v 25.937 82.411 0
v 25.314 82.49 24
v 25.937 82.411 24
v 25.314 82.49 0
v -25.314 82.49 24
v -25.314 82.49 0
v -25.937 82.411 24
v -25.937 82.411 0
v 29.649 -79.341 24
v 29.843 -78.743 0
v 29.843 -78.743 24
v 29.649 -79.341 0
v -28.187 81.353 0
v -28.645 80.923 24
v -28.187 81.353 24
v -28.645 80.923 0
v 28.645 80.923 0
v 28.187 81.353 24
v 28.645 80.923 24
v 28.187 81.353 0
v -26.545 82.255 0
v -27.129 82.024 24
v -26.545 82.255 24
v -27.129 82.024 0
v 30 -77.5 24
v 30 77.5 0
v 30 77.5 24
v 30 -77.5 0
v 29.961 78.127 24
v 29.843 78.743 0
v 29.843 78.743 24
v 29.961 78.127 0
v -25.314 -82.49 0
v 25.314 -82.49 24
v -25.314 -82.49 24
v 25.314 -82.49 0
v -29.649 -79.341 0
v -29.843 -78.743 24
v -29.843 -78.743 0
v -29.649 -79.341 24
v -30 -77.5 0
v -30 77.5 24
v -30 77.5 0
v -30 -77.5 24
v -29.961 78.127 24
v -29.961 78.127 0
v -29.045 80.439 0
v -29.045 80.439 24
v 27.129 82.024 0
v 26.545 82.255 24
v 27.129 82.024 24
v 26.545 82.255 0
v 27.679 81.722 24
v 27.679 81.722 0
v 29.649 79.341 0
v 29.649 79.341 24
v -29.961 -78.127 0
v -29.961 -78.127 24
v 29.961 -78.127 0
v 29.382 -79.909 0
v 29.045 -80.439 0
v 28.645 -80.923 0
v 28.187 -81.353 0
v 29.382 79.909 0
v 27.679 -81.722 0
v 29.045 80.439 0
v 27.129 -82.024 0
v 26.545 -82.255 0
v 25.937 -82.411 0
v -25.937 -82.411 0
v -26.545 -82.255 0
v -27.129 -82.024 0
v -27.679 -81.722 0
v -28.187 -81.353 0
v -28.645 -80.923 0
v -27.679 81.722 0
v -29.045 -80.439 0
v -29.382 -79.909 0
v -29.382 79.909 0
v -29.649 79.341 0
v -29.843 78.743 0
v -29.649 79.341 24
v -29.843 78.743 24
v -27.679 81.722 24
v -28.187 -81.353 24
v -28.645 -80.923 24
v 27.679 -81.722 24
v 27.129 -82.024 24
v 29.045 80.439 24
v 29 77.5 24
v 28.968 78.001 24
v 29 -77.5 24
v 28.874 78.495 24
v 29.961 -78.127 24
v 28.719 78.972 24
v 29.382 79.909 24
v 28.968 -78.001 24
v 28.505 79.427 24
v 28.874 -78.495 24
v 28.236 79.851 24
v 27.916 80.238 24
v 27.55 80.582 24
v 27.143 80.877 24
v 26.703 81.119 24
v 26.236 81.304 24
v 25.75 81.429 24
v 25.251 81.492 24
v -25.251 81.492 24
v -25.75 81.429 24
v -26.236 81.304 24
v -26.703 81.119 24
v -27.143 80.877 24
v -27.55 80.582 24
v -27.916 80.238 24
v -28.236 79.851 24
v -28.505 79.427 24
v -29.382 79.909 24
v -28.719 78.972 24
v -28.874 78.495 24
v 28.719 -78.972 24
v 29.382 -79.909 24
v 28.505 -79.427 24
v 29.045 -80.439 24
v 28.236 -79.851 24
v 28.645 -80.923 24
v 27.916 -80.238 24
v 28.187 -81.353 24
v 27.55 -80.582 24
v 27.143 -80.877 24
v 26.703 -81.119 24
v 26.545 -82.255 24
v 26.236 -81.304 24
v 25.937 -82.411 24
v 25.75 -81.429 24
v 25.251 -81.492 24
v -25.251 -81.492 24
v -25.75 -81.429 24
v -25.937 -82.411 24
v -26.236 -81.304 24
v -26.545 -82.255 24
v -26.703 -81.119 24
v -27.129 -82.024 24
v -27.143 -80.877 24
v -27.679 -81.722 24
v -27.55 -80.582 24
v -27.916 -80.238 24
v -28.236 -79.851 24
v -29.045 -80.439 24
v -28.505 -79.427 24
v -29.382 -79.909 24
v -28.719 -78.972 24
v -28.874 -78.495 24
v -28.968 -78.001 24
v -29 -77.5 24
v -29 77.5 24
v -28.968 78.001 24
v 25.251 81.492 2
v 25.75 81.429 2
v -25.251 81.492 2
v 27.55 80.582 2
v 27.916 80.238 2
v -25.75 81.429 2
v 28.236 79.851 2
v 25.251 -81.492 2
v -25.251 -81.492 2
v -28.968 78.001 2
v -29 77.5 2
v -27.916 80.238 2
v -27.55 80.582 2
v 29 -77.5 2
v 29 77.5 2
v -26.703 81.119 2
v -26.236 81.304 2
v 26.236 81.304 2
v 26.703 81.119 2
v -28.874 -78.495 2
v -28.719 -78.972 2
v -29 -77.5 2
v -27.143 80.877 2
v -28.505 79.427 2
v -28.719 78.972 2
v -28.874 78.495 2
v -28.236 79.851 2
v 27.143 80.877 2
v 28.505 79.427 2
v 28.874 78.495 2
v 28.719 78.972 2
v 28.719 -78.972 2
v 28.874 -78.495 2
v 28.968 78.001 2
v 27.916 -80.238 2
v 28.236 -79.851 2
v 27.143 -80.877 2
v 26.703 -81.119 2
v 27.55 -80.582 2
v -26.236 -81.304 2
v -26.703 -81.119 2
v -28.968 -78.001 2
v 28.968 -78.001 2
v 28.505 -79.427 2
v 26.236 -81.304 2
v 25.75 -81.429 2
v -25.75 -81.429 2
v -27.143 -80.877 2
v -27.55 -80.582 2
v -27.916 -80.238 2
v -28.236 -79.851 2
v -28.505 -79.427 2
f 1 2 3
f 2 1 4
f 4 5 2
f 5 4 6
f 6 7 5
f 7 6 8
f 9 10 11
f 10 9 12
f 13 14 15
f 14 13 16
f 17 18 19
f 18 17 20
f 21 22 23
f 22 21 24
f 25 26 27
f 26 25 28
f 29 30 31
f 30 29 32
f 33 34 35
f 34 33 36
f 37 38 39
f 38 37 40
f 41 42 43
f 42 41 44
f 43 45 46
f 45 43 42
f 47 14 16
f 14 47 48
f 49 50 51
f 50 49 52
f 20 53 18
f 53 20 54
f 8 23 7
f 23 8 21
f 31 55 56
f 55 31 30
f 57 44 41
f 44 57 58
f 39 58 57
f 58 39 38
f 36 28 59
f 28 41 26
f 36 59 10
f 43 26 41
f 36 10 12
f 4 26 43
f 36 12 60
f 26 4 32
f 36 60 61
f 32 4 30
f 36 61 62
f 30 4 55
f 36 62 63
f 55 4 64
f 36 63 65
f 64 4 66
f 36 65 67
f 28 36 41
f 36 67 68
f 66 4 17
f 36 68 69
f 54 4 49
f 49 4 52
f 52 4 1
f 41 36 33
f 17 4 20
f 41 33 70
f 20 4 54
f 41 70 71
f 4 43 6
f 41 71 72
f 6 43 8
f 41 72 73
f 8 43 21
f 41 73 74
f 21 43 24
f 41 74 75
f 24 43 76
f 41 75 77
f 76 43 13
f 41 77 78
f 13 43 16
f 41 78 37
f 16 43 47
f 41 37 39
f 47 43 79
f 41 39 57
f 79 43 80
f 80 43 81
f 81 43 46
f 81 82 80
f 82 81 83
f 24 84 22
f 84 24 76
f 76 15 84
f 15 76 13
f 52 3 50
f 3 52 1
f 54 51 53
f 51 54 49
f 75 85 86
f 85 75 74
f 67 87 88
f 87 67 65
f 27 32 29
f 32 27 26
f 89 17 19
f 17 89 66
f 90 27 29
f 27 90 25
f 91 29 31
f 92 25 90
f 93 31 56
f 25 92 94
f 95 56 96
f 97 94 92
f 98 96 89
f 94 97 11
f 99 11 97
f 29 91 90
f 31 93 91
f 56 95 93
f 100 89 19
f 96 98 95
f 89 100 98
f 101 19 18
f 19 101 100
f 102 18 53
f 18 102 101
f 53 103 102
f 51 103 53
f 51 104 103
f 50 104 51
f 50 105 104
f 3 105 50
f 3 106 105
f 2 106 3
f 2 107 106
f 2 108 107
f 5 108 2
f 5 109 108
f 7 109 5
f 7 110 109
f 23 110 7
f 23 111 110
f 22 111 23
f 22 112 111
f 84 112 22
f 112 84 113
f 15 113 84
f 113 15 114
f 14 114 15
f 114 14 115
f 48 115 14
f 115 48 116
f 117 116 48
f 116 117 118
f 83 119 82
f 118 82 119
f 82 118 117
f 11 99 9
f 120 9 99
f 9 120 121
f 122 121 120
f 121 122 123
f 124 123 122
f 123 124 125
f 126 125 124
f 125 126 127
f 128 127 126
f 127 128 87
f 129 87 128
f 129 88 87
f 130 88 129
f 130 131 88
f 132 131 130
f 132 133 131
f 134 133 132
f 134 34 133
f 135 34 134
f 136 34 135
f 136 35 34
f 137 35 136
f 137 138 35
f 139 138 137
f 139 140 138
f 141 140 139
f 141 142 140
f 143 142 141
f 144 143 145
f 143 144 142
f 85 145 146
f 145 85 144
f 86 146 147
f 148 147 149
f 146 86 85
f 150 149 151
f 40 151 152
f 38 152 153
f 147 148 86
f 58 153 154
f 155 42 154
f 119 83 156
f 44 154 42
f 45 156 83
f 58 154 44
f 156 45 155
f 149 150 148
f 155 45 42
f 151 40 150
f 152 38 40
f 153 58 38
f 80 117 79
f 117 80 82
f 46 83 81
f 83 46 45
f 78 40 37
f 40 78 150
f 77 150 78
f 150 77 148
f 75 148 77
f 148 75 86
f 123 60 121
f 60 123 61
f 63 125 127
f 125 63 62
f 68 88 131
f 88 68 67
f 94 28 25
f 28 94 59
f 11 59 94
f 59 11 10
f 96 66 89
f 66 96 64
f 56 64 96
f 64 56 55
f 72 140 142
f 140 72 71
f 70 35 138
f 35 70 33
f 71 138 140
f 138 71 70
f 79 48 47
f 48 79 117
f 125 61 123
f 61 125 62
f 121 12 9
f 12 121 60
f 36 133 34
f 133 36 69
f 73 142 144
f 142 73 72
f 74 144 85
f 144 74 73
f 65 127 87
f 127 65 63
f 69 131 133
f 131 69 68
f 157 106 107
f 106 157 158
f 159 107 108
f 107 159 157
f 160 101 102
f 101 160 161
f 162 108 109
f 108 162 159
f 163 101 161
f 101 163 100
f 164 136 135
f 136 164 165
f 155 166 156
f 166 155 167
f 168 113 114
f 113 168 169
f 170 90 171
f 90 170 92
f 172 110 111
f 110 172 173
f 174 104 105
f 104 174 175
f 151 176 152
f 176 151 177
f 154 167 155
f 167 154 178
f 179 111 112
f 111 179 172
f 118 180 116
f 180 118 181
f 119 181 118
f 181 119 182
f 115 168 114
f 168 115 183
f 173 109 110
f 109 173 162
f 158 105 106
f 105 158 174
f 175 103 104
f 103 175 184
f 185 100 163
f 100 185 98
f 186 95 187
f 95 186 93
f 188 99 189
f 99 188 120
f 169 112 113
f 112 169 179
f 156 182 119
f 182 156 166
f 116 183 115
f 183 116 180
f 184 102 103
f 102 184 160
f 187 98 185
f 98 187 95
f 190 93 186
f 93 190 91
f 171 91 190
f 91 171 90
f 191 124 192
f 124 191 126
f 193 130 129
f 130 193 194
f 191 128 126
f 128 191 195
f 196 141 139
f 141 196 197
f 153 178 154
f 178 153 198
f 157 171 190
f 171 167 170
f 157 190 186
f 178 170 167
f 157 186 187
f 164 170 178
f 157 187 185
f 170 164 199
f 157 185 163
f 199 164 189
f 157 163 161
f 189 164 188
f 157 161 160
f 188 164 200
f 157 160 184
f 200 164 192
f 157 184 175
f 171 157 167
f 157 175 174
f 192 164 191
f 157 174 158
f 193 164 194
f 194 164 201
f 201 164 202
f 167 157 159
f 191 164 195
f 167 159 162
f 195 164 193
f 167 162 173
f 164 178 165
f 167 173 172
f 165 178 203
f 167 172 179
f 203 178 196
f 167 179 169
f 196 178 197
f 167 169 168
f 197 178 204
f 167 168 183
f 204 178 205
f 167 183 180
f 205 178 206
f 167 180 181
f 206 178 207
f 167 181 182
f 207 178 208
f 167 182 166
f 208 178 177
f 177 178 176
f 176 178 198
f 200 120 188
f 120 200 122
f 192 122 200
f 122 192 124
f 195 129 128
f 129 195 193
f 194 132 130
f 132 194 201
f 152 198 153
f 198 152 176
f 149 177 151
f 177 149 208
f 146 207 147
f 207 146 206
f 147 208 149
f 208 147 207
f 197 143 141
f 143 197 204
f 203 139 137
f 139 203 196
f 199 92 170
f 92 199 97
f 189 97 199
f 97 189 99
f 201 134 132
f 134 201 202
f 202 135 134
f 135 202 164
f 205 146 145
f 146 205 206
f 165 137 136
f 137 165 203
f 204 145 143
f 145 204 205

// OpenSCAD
$fn = 50;


difference() {
	union() {
		hull() {
			translate(v = [-25.0000000000, 77.5000000000, 0]) {
				cylinder(h = 24, r = 5);
			}
			translate(v = [25.0000000000, 77.5000000000, 0]) {
				cylinder(h = 24, r = 5);
			}
			translate(v = [-25.0000000000, -77.5000000000, 0]) {
				cylinder(h = 24, r = 5);
			}
			translate(v = [25.0000000000, -77.5000000000, 0]) {
				cylinder(h = 24, r = 5);
			}
		}
	}
	union() {
		translate(v = [0, 0, 2]) {
			hull() {
				translate(v = [-25.0000000000, 77.5000000000, 0]) {
					cylinder(h = 22, r = 4);
				}
				translate(v = [25.0000000000, 77.5000000000, 0]) {
					cylinder(h = 22, r = 4);
				}
				translate(v = [-25.0000000000, -77.5000000000, 0]) {
					cylinder(h = 22, r = 4);
				}
				translate(v = [25.0000000000, -77.5000000000, 0]) {
					cylinder(h = 22, r = 4);
				}
			}
		}
	}
}
